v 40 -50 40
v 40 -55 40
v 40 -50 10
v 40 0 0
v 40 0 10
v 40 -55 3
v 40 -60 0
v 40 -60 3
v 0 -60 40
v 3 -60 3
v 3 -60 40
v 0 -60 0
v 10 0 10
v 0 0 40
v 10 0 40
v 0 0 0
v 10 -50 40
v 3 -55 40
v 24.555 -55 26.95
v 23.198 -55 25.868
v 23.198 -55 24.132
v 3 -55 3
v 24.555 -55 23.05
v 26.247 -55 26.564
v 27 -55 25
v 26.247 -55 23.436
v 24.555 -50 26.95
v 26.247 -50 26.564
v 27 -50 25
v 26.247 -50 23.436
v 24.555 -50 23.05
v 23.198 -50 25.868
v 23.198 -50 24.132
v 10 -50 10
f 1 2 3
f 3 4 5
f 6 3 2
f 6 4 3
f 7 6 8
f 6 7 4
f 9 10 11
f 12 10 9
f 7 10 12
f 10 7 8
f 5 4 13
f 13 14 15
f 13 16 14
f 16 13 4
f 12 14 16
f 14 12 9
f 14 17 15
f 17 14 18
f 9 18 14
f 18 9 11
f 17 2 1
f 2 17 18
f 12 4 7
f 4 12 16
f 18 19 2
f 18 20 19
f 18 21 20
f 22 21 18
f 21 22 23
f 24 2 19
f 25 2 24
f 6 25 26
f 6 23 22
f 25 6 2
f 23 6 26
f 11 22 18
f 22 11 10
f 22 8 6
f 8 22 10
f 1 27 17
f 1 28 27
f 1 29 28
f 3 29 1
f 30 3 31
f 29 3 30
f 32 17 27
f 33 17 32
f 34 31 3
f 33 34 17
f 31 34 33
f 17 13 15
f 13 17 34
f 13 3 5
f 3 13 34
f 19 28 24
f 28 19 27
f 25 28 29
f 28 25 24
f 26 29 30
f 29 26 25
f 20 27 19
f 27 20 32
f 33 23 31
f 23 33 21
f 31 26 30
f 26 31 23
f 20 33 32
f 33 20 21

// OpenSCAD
rotate([90,0,0])
difference() {
    cube([40,40,60], false);
    translate([3,3,55]) cube([50,50,35+5], false);
    translate([10,10,-5]) cube([50, 50,50+5], false);
    translate([25,25,0]) cylinder(r=2,h=100);
}
